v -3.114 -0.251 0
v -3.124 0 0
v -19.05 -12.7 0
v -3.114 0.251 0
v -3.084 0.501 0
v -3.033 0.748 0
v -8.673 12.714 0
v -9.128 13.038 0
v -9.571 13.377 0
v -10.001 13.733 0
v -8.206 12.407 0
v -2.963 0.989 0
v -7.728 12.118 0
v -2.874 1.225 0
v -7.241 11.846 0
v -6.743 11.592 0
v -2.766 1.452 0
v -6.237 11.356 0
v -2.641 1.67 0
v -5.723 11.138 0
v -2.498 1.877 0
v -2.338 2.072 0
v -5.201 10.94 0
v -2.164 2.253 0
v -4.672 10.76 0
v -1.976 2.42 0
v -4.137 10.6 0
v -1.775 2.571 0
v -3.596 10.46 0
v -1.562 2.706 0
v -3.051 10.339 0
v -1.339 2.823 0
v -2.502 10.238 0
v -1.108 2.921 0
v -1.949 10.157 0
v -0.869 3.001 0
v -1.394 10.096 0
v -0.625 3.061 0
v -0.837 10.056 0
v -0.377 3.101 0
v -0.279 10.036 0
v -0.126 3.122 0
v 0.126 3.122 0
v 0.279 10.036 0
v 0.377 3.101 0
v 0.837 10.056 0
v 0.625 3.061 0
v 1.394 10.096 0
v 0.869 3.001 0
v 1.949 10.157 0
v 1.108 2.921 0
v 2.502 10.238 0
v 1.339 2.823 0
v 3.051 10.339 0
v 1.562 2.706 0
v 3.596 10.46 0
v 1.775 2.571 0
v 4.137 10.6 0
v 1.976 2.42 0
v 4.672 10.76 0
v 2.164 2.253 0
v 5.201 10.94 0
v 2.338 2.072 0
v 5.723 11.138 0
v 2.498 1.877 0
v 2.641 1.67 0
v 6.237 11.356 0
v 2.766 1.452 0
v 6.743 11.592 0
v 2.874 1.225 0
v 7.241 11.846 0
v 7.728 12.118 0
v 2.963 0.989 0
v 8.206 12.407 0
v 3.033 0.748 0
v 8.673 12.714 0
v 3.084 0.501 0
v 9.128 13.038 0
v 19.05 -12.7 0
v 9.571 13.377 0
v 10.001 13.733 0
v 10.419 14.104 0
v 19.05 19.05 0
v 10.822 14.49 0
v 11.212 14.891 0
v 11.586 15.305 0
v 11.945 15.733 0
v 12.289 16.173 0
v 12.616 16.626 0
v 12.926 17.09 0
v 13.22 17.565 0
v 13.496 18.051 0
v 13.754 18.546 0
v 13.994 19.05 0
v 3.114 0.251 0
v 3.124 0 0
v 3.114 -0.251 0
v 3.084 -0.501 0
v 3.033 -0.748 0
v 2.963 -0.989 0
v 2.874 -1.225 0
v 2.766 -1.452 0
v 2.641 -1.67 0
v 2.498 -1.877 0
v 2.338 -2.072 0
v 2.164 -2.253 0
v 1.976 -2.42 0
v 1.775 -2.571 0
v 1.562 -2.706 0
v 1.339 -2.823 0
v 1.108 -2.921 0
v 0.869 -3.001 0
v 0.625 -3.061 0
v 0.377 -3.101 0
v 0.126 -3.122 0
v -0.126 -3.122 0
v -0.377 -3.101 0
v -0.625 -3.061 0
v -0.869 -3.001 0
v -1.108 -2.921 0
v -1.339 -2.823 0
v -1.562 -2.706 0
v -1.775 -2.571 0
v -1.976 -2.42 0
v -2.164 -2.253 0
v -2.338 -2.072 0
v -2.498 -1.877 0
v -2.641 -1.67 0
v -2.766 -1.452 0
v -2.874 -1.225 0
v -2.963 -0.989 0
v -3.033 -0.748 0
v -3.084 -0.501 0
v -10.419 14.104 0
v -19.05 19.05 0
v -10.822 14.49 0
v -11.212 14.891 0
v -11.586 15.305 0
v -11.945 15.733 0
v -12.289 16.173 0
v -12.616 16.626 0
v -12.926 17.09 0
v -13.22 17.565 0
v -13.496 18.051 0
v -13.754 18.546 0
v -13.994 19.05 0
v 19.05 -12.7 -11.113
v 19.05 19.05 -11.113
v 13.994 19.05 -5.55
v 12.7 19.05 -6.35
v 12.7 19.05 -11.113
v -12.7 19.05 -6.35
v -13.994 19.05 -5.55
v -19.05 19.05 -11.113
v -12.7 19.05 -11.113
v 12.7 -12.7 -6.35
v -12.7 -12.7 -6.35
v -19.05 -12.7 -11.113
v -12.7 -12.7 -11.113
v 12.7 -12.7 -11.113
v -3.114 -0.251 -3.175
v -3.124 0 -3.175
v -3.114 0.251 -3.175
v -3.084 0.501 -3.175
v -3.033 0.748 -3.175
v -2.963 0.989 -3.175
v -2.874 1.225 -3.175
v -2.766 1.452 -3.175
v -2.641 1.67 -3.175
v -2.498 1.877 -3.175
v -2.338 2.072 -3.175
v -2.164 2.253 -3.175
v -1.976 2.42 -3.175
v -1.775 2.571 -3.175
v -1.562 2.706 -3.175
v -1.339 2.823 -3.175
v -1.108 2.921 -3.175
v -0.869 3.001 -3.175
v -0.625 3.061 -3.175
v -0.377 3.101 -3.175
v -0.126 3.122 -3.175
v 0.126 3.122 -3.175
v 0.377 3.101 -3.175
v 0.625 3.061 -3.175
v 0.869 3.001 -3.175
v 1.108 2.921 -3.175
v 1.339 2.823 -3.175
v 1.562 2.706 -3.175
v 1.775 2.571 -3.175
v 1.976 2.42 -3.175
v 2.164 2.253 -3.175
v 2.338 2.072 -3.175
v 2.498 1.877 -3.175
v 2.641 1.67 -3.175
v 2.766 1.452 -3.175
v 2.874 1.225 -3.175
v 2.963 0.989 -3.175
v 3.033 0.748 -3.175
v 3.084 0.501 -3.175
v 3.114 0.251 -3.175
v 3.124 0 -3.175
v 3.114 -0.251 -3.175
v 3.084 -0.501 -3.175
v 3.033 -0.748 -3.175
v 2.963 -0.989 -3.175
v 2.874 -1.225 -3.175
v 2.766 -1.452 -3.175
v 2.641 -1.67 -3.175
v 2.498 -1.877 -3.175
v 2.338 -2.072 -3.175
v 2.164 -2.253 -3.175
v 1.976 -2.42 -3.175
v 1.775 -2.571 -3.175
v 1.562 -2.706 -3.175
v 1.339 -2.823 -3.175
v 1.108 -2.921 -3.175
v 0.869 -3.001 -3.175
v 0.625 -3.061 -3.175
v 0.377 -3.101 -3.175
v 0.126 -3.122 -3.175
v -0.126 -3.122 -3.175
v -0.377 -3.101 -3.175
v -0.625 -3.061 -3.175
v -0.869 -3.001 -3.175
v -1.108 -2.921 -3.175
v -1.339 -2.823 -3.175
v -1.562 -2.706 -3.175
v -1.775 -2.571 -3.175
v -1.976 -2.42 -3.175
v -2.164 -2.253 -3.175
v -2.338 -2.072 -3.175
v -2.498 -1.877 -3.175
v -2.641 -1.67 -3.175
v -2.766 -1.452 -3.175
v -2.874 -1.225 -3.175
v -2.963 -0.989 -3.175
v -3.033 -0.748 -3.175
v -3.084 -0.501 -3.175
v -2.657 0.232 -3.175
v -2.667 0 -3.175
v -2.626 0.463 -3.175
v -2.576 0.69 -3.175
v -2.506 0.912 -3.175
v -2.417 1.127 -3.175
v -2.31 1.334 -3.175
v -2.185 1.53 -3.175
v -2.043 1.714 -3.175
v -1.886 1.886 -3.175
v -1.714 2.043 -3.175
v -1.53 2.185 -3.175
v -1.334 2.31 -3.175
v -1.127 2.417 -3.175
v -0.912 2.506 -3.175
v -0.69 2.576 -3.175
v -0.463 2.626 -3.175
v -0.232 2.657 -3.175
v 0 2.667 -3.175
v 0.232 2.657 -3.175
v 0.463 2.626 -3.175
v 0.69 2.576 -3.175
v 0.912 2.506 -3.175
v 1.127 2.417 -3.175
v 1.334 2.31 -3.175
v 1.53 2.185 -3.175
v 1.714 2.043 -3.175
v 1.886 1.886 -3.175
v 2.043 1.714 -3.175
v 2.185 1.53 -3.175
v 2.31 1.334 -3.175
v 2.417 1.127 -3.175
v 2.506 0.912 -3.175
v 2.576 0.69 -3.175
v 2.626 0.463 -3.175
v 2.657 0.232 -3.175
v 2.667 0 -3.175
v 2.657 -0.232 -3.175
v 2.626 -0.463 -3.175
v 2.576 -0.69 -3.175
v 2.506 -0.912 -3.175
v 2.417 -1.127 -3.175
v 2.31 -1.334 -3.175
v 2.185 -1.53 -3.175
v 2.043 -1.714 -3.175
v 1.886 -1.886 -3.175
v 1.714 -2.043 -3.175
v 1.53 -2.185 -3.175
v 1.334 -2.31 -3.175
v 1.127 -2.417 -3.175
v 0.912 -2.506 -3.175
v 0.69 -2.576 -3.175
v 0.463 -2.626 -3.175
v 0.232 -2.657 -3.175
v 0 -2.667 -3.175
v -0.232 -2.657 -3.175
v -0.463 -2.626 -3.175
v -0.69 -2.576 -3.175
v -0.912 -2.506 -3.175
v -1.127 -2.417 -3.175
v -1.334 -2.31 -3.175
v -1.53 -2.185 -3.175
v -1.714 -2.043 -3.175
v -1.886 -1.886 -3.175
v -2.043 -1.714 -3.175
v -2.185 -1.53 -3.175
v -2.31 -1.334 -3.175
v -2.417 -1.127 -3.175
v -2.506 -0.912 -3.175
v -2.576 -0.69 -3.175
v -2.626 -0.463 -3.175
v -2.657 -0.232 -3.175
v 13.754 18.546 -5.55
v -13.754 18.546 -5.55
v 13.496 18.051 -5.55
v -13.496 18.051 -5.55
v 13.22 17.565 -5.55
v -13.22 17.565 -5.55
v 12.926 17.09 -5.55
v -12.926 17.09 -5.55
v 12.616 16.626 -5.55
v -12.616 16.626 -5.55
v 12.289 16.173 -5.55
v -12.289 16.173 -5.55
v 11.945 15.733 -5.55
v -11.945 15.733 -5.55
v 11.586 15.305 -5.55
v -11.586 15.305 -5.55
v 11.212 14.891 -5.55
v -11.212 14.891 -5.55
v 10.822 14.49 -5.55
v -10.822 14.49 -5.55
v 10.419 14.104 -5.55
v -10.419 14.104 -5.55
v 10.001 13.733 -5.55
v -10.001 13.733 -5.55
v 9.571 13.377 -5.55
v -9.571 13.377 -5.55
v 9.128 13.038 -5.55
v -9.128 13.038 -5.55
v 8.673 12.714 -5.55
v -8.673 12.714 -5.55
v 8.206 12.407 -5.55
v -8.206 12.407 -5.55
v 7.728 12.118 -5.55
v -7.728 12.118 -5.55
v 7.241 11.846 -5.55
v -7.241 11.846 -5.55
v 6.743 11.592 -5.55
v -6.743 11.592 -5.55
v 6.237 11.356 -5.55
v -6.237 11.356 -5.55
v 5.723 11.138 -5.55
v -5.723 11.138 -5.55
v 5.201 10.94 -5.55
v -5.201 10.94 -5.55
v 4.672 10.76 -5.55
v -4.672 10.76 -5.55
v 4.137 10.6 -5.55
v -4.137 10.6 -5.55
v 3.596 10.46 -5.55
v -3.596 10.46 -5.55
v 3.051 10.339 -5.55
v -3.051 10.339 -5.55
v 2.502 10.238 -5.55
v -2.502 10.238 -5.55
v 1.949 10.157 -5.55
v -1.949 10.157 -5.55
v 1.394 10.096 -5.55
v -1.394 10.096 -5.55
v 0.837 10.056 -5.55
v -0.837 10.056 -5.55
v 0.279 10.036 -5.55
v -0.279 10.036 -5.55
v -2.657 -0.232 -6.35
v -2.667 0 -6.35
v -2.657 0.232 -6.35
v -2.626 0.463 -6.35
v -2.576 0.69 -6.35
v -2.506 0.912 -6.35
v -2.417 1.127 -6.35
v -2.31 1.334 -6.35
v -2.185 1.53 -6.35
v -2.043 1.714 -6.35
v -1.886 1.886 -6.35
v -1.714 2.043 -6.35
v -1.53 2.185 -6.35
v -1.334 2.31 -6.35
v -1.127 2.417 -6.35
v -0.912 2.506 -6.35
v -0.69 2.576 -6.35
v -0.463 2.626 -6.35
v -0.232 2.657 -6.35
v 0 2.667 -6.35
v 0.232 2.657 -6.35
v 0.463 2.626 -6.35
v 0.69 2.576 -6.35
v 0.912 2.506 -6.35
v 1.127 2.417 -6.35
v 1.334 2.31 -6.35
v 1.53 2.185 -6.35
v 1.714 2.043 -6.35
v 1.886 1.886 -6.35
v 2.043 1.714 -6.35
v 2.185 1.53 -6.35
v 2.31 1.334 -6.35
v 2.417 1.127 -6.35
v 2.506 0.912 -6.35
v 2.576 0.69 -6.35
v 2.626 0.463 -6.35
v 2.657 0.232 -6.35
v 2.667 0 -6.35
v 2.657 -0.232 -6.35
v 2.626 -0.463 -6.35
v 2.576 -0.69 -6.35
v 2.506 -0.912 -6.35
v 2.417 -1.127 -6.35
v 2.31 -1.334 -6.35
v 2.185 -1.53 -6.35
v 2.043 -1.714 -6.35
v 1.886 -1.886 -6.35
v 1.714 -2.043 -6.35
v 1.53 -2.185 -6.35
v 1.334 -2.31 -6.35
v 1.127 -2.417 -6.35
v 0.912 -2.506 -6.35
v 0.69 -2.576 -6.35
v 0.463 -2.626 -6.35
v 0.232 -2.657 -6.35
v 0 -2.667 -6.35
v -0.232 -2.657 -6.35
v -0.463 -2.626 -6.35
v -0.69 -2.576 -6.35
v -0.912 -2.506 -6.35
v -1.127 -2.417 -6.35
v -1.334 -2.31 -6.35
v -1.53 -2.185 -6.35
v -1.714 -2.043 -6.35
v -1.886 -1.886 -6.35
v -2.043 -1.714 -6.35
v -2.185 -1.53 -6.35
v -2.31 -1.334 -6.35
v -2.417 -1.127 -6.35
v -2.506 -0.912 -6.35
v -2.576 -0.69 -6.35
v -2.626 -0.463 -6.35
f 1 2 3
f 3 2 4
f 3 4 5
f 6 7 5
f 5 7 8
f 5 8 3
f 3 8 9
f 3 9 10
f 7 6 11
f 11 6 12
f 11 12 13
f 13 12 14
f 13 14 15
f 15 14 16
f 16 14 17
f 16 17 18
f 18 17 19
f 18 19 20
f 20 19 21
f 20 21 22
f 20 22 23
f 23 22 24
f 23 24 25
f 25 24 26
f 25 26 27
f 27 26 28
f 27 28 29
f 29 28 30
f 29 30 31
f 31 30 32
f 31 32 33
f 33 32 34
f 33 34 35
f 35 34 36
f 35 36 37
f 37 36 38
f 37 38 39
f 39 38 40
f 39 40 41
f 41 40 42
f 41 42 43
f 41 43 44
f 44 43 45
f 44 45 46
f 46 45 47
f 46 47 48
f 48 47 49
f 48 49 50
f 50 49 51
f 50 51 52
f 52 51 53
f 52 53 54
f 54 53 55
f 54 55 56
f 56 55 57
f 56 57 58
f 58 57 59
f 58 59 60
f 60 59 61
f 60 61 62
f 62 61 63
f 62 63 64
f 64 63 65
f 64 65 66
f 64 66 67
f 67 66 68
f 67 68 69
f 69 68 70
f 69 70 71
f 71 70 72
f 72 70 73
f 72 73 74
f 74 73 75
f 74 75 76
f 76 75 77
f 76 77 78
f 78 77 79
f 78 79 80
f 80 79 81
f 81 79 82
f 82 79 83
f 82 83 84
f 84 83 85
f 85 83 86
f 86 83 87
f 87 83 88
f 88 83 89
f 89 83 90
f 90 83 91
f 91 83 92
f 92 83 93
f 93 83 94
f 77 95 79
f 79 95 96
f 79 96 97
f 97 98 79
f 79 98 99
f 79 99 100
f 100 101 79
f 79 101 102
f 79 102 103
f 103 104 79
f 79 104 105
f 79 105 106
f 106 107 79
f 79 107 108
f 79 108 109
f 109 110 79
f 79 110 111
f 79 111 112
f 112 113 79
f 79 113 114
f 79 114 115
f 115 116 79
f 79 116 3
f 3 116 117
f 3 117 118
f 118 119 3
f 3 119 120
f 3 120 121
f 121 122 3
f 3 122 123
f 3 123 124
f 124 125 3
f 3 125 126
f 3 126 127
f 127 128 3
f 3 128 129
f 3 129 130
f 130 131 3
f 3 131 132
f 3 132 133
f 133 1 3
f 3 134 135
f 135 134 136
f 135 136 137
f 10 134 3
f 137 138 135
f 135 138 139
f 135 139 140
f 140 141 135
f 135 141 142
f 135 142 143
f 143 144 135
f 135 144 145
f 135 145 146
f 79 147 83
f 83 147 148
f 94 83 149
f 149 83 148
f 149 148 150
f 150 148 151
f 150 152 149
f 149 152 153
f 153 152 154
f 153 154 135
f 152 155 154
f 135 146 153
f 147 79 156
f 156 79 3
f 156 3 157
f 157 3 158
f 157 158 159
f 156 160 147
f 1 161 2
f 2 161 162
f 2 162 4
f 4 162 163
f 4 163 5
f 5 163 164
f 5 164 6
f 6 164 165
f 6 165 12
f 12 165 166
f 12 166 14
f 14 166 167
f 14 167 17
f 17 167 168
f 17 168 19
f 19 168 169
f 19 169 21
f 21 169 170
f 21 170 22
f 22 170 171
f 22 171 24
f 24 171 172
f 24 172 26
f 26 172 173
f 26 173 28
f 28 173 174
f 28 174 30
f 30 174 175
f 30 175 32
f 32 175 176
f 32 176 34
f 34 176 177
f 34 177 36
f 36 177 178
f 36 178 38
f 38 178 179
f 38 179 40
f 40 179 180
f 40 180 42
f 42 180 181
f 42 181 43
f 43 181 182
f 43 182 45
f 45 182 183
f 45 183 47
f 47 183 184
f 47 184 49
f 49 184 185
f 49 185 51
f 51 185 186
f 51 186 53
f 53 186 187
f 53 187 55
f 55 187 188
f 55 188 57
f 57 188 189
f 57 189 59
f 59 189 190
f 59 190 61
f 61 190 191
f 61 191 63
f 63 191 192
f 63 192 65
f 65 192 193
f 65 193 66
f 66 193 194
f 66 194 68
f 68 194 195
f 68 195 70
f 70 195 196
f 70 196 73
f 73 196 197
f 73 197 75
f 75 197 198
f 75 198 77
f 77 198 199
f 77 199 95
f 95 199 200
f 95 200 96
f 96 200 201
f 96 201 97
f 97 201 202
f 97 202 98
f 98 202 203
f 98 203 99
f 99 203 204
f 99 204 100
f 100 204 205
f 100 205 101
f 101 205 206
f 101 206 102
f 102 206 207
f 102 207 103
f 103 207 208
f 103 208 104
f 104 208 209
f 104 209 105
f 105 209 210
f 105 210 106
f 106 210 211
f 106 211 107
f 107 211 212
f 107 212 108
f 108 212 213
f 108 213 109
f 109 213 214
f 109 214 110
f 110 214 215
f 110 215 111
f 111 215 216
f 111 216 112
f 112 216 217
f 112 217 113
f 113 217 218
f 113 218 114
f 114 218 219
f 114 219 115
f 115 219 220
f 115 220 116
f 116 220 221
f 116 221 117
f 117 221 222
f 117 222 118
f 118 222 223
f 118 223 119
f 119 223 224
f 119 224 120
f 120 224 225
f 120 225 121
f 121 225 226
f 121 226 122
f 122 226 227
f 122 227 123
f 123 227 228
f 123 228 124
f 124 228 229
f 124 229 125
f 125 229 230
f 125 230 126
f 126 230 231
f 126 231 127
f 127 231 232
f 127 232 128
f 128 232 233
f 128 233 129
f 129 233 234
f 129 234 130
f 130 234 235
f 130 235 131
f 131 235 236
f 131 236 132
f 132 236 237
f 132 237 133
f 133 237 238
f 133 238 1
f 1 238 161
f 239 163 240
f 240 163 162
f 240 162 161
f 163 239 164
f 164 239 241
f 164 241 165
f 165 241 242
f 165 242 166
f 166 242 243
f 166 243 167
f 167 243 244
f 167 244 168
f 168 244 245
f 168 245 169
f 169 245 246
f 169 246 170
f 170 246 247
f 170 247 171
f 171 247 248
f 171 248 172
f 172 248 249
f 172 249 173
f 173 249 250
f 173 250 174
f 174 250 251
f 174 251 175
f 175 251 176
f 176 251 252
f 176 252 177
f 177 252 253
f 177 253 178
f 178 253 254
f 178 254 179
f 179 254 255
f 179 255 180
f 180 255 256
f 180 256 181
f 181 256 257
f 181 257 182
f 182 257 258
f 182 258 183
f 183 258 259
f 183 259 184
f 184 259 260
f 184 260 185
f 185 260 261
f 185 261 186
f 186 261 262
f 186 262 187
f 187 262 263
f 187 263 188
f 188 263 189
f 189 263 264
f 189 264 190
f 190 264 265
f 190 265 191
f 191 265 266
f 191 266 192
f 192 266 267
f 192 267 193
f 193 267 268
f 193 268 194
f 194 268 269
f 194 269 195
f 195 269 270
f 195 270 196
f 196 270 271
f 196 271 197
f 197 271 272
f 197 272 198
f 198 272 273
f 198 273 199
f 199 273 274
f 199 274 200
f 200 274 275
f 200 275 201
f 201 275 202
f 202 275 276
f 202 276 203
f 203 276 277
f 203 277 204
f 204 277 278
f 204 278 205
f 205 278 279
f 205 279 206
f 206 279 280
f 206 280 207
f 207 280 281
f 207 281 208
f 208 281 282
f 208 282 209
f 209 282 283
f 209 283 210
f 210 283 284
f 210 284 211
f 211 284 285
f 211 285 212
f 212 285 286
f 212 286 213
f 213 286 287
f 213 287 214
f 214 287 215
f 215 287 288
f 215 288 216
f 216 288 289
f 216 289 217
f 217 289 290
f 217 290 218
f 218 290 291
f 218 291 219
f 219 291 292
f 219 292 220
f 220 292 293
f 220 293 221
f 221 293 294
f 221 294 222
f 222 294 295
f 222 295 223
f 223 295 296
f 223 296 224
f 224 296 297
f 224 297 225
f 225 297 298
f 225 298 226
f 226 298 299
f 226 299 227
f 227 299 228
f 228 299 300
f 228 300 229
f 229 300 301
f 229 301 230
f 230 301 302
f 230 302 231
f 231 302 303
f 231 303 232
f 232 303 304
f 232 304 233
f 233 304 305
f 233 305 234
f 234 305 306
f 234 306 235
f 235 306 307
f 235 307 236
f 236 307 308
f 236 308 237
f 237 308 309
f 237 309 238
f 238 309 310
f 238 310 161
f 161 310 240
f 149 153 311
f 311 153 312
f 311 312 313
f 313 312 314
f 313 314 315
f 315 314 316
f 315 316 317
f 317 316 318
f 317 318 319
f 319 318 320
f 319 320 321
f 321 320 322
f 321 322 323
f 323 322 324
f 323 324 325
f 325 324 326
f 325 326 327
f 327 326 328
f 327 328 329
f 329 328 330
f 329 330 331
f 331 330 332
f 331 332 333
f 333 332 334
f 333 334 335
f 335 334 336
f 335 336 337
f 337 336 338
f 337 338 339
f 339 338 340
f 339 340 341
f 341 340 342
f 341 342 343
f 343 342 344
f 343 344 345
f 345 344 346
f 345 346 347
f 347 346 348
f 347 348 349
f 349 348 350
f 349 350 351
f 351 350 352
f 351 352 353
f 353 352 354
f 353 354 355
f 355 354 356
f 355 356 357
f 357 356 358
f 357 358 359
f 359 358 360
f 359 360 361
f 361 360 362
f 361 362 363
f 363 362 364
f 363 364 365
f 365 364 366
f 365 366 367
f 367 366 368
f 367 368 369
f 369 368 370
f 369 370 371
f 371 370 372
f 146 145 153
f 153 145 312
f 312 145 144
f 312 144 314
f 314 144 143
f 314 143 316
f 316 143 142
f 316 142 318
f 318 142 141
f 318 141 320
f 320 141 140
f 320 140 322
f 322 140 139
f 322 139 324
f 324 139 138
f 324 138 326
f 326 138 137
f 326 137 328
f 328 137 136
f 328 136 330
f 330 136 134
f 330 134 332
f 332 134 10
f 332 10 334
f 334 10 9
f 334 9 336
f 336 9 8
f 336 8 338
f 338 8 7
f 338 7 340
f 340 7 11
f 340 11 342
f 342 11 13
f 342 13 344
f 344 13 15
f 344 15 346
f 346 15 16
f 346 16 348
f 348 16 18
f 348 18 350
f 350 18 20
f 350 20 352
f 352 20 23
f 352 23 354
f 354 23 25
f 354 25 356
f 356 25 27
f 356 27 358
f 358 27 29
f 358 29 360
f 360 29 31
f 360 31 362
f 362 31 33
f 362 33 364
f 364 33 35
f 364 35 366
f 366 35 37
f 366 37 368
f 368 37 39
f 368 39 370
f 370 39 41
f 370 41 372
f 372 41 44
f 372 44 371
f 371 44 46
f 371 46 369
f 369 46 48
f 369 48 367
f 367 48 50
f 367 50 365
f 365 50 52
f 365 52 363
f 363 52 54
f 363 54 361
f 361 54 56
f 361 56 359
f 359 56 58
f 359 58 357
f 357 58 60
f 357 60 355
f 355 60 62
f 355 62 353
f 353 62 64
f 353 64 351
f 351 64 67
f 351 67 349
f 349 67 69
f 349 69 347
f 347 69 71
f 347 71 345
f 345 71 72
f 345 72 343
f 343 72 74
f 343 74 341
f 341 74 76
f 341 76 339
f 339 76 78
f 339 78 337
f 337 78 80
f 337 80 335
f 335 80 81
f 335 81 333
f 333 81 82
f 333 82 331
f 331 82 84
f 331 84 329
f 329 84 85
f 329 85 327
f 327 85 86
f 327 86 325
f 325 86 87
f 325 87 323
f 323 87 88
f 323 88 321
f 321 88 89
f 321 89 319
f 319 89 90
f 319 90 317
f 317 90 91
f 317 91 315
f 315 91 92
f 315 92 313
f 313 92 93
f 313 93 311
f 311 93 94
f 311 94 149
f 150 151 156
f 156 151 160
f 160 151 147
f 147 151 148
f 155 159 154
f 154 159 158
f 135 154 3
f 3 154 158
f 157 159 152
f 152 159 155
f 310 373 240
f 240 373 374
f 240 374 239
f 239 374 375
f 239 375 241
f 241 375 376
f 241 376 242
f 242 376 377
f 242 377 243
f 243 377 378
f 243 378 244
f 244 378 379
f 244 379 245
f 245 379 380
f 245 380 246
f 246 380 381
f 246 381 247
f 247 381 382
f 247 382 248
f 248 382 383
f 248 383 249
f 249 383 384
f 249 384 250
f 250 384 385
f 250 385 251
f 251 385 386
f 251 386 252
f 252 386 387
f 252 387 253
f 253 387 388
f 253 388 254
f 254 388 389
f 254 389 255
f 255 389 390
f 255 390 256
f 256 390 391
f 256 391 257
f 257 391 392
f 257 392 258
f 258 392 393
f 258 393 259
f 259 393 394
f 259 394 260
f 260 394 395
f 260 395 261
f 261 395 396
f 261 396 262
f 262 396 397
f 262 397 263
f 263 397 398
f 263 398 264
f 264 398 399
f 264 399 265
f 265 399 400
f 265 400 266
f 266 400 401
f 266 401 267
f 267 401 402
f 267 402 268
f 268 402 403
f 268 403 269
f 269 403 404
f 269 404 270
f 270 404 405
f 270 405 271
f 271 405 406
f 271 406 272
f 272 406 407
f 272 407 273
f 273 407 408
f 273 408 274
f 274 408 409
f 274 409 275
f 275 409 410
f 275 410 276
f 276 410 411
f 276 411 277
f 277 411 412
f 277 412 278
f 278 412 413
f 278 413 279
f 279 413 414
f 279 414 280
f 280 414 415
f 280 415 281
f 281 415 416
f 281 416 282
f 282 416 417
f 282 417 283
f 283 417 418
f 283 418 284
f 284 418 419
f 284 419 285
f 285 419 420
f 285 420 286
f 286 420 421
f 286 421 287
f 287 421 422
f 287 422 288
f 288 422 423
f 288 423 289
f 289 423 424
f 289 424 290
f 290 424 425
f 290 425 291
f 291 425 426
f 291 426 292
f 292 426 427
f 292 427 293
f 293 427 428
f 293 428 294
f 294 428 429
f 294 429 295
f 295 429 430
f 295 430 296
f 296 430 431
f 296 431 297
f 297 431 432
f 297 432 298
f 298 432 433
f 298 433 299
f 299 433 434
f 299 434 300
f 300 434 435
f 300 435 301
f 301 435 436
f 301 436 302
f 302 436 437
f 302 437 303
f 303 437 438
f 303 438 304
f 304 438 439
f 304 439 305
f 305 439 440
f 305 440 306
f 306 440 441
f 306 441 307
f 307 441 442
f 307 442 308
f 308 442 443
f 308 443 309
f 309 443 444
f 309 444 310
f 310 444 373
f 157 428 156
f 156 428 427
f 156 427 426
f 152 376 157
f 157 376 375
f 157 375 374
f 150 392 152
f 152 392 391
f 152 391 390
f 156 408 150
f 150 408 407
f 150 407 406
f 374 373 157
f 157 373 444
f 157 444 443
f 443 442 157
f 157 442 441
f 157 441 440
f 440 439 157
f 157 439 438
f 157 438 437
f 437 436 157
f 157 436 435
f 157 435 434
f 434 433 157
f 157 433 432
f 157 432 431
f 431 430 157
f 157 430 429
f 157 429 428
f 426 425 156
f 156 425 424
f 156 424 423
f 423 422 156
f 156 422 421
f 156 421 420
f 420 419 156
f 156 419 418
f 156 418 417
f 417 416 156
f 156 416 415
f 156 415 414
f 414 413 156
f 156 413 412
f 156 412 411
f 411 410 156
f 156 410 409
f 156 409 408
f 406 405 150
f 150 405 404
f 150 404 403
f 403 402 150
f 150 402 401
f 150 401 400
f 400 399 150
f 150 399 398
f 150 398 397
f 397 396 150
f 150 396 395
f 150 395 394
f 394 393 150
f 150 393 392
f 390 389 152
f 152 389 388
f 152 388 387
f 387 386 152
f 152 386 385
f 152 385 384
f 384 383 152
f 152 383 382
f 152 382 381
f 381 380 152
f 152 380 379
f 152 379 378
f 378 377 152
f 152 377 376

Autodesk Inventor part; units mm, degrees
ref_plane "YZ Plane" through (0, 0, 0) normal (1, 0, 0) x (0, 1, 0)
ref_plane "XZ Plane" through (0, 0, 0) normal (0, 1, 0) x (-1, 0, 0)
sketch "Sketch3" plane through (0, 0, 0) normal (0, 0, 1) x (1, 0, 0)
  line L0 (-12.7, -19.05) -> (12.7, -19.05)
  line L1 (12.7, -19.05) -> (12.7, 19.05)
  line L2 (12.7, 19.05) -> (-12.7, 19.05)
  line L3 (-12.7, 19.05) -> (-12.7, -19.05)
  line L4 (-12.7, -19.05) -> (12.7, 19.05) construction
  line L5 (12.7, -19.05) -> (-12.7, 19.05) construction
  point P0 (0, 0)
  dimension "d0" = 25.4
  dimension "d1" = 38.1
extrude "Extrusion1" add sketch "Sketch3" along normal mid plane 12.7
sketch "Sketch4" plane through (0, 0, 6.35) normal (0, 0, 1) x (1, 0, 0)
  circle A0 centre (0, 0) radius 2.667
  dimension "d4" = 5.334
extrude "Extrusion2" cut sketch "Sketch4" against normal through all
sketch "Sketch5" plane through (-12.7, -19.05, 6.35) normal (-1, 0, 0) x (0, 0, 1)
  line L0 (3.175, 6.35) -> (50.8, 6.35) projected
  line L1 (-12.7, 38.1) -> (-12.7, 0) projected
  line L2 (0, 0) -> (0, 38.1) projected
  line L3 (-12.7, 0) -> (0, 0)
  line L4 (0, 0) -> (0, 6.35)
  line L5 (0, 6.35) -> (-12.7, 6.35)
  line L6 (-12.7, 6.35) -> (-12.7, 0)
  point P0 (-6.35, 19.05)
  point P1 (-12.7, 6.35)
  dimension "d9" = 6.35
extrude "Extrusion3" cut sketch "Sketch5" against normal through all
sketch "Sketch8" plane through (-12.7, -12.7, -6.35) normal (-1, 0, 0) x (0, 0, 1)
  line L0 (-4.7625, 21.8398) -> (-4.7625, 13.2284) projected
  line L1 (12.7, 0) -> (12.7, 31.75) projected
  line L2 (12.7, 0) -> (-4.7625, 0)
  line L3 (-4.7625, 0) -> (-4.7625, 31.75)
  line L4 (-4.7625, 31.75) -> (12.7, 31.75)
  line L5 (12.7, 31.75) -> (12.7, 0)
  point P0 (6.35, 12.7)
  point P1 (-4.7625, 13.2284)
extrude "Extrusion5" add sketch "Sketch8" along normal blind 6.35
mirror "Mirror1" about plane through (0, 0, 0) normal (1, 0, 0) of "Extrusion5"
sketch "Sketch6" plane through (0, 0, 0) normal (0, 0, 1) x (1, 0, 0)
  circle A0 centre (0, 25.4) radius 15.367
  point P0 (0, 0)
  dimension "d10" = 25.4
  dimension "d13" = 30.734
extrude "cutOutForGuide" cut sketch "Sketch6" along normal mid plane 11.0998
sketch "Sketch9" plane through (0, 0, 6.35) normal (0, 0, 1) x (1, 0, 0)
  circle A0 centre (0, 0) radius 3.1242
  dimension "d16" = 6.2484
extrude "Extrusion6" cut sketch "Sketch9" against normal blind 9.525
split "Split1" plane through (0, 0, 0) removes the side toward (0, 0, 1)
properties part number "preventWireJumpingSingleSupportSliceB" material "PBT Plastic"
